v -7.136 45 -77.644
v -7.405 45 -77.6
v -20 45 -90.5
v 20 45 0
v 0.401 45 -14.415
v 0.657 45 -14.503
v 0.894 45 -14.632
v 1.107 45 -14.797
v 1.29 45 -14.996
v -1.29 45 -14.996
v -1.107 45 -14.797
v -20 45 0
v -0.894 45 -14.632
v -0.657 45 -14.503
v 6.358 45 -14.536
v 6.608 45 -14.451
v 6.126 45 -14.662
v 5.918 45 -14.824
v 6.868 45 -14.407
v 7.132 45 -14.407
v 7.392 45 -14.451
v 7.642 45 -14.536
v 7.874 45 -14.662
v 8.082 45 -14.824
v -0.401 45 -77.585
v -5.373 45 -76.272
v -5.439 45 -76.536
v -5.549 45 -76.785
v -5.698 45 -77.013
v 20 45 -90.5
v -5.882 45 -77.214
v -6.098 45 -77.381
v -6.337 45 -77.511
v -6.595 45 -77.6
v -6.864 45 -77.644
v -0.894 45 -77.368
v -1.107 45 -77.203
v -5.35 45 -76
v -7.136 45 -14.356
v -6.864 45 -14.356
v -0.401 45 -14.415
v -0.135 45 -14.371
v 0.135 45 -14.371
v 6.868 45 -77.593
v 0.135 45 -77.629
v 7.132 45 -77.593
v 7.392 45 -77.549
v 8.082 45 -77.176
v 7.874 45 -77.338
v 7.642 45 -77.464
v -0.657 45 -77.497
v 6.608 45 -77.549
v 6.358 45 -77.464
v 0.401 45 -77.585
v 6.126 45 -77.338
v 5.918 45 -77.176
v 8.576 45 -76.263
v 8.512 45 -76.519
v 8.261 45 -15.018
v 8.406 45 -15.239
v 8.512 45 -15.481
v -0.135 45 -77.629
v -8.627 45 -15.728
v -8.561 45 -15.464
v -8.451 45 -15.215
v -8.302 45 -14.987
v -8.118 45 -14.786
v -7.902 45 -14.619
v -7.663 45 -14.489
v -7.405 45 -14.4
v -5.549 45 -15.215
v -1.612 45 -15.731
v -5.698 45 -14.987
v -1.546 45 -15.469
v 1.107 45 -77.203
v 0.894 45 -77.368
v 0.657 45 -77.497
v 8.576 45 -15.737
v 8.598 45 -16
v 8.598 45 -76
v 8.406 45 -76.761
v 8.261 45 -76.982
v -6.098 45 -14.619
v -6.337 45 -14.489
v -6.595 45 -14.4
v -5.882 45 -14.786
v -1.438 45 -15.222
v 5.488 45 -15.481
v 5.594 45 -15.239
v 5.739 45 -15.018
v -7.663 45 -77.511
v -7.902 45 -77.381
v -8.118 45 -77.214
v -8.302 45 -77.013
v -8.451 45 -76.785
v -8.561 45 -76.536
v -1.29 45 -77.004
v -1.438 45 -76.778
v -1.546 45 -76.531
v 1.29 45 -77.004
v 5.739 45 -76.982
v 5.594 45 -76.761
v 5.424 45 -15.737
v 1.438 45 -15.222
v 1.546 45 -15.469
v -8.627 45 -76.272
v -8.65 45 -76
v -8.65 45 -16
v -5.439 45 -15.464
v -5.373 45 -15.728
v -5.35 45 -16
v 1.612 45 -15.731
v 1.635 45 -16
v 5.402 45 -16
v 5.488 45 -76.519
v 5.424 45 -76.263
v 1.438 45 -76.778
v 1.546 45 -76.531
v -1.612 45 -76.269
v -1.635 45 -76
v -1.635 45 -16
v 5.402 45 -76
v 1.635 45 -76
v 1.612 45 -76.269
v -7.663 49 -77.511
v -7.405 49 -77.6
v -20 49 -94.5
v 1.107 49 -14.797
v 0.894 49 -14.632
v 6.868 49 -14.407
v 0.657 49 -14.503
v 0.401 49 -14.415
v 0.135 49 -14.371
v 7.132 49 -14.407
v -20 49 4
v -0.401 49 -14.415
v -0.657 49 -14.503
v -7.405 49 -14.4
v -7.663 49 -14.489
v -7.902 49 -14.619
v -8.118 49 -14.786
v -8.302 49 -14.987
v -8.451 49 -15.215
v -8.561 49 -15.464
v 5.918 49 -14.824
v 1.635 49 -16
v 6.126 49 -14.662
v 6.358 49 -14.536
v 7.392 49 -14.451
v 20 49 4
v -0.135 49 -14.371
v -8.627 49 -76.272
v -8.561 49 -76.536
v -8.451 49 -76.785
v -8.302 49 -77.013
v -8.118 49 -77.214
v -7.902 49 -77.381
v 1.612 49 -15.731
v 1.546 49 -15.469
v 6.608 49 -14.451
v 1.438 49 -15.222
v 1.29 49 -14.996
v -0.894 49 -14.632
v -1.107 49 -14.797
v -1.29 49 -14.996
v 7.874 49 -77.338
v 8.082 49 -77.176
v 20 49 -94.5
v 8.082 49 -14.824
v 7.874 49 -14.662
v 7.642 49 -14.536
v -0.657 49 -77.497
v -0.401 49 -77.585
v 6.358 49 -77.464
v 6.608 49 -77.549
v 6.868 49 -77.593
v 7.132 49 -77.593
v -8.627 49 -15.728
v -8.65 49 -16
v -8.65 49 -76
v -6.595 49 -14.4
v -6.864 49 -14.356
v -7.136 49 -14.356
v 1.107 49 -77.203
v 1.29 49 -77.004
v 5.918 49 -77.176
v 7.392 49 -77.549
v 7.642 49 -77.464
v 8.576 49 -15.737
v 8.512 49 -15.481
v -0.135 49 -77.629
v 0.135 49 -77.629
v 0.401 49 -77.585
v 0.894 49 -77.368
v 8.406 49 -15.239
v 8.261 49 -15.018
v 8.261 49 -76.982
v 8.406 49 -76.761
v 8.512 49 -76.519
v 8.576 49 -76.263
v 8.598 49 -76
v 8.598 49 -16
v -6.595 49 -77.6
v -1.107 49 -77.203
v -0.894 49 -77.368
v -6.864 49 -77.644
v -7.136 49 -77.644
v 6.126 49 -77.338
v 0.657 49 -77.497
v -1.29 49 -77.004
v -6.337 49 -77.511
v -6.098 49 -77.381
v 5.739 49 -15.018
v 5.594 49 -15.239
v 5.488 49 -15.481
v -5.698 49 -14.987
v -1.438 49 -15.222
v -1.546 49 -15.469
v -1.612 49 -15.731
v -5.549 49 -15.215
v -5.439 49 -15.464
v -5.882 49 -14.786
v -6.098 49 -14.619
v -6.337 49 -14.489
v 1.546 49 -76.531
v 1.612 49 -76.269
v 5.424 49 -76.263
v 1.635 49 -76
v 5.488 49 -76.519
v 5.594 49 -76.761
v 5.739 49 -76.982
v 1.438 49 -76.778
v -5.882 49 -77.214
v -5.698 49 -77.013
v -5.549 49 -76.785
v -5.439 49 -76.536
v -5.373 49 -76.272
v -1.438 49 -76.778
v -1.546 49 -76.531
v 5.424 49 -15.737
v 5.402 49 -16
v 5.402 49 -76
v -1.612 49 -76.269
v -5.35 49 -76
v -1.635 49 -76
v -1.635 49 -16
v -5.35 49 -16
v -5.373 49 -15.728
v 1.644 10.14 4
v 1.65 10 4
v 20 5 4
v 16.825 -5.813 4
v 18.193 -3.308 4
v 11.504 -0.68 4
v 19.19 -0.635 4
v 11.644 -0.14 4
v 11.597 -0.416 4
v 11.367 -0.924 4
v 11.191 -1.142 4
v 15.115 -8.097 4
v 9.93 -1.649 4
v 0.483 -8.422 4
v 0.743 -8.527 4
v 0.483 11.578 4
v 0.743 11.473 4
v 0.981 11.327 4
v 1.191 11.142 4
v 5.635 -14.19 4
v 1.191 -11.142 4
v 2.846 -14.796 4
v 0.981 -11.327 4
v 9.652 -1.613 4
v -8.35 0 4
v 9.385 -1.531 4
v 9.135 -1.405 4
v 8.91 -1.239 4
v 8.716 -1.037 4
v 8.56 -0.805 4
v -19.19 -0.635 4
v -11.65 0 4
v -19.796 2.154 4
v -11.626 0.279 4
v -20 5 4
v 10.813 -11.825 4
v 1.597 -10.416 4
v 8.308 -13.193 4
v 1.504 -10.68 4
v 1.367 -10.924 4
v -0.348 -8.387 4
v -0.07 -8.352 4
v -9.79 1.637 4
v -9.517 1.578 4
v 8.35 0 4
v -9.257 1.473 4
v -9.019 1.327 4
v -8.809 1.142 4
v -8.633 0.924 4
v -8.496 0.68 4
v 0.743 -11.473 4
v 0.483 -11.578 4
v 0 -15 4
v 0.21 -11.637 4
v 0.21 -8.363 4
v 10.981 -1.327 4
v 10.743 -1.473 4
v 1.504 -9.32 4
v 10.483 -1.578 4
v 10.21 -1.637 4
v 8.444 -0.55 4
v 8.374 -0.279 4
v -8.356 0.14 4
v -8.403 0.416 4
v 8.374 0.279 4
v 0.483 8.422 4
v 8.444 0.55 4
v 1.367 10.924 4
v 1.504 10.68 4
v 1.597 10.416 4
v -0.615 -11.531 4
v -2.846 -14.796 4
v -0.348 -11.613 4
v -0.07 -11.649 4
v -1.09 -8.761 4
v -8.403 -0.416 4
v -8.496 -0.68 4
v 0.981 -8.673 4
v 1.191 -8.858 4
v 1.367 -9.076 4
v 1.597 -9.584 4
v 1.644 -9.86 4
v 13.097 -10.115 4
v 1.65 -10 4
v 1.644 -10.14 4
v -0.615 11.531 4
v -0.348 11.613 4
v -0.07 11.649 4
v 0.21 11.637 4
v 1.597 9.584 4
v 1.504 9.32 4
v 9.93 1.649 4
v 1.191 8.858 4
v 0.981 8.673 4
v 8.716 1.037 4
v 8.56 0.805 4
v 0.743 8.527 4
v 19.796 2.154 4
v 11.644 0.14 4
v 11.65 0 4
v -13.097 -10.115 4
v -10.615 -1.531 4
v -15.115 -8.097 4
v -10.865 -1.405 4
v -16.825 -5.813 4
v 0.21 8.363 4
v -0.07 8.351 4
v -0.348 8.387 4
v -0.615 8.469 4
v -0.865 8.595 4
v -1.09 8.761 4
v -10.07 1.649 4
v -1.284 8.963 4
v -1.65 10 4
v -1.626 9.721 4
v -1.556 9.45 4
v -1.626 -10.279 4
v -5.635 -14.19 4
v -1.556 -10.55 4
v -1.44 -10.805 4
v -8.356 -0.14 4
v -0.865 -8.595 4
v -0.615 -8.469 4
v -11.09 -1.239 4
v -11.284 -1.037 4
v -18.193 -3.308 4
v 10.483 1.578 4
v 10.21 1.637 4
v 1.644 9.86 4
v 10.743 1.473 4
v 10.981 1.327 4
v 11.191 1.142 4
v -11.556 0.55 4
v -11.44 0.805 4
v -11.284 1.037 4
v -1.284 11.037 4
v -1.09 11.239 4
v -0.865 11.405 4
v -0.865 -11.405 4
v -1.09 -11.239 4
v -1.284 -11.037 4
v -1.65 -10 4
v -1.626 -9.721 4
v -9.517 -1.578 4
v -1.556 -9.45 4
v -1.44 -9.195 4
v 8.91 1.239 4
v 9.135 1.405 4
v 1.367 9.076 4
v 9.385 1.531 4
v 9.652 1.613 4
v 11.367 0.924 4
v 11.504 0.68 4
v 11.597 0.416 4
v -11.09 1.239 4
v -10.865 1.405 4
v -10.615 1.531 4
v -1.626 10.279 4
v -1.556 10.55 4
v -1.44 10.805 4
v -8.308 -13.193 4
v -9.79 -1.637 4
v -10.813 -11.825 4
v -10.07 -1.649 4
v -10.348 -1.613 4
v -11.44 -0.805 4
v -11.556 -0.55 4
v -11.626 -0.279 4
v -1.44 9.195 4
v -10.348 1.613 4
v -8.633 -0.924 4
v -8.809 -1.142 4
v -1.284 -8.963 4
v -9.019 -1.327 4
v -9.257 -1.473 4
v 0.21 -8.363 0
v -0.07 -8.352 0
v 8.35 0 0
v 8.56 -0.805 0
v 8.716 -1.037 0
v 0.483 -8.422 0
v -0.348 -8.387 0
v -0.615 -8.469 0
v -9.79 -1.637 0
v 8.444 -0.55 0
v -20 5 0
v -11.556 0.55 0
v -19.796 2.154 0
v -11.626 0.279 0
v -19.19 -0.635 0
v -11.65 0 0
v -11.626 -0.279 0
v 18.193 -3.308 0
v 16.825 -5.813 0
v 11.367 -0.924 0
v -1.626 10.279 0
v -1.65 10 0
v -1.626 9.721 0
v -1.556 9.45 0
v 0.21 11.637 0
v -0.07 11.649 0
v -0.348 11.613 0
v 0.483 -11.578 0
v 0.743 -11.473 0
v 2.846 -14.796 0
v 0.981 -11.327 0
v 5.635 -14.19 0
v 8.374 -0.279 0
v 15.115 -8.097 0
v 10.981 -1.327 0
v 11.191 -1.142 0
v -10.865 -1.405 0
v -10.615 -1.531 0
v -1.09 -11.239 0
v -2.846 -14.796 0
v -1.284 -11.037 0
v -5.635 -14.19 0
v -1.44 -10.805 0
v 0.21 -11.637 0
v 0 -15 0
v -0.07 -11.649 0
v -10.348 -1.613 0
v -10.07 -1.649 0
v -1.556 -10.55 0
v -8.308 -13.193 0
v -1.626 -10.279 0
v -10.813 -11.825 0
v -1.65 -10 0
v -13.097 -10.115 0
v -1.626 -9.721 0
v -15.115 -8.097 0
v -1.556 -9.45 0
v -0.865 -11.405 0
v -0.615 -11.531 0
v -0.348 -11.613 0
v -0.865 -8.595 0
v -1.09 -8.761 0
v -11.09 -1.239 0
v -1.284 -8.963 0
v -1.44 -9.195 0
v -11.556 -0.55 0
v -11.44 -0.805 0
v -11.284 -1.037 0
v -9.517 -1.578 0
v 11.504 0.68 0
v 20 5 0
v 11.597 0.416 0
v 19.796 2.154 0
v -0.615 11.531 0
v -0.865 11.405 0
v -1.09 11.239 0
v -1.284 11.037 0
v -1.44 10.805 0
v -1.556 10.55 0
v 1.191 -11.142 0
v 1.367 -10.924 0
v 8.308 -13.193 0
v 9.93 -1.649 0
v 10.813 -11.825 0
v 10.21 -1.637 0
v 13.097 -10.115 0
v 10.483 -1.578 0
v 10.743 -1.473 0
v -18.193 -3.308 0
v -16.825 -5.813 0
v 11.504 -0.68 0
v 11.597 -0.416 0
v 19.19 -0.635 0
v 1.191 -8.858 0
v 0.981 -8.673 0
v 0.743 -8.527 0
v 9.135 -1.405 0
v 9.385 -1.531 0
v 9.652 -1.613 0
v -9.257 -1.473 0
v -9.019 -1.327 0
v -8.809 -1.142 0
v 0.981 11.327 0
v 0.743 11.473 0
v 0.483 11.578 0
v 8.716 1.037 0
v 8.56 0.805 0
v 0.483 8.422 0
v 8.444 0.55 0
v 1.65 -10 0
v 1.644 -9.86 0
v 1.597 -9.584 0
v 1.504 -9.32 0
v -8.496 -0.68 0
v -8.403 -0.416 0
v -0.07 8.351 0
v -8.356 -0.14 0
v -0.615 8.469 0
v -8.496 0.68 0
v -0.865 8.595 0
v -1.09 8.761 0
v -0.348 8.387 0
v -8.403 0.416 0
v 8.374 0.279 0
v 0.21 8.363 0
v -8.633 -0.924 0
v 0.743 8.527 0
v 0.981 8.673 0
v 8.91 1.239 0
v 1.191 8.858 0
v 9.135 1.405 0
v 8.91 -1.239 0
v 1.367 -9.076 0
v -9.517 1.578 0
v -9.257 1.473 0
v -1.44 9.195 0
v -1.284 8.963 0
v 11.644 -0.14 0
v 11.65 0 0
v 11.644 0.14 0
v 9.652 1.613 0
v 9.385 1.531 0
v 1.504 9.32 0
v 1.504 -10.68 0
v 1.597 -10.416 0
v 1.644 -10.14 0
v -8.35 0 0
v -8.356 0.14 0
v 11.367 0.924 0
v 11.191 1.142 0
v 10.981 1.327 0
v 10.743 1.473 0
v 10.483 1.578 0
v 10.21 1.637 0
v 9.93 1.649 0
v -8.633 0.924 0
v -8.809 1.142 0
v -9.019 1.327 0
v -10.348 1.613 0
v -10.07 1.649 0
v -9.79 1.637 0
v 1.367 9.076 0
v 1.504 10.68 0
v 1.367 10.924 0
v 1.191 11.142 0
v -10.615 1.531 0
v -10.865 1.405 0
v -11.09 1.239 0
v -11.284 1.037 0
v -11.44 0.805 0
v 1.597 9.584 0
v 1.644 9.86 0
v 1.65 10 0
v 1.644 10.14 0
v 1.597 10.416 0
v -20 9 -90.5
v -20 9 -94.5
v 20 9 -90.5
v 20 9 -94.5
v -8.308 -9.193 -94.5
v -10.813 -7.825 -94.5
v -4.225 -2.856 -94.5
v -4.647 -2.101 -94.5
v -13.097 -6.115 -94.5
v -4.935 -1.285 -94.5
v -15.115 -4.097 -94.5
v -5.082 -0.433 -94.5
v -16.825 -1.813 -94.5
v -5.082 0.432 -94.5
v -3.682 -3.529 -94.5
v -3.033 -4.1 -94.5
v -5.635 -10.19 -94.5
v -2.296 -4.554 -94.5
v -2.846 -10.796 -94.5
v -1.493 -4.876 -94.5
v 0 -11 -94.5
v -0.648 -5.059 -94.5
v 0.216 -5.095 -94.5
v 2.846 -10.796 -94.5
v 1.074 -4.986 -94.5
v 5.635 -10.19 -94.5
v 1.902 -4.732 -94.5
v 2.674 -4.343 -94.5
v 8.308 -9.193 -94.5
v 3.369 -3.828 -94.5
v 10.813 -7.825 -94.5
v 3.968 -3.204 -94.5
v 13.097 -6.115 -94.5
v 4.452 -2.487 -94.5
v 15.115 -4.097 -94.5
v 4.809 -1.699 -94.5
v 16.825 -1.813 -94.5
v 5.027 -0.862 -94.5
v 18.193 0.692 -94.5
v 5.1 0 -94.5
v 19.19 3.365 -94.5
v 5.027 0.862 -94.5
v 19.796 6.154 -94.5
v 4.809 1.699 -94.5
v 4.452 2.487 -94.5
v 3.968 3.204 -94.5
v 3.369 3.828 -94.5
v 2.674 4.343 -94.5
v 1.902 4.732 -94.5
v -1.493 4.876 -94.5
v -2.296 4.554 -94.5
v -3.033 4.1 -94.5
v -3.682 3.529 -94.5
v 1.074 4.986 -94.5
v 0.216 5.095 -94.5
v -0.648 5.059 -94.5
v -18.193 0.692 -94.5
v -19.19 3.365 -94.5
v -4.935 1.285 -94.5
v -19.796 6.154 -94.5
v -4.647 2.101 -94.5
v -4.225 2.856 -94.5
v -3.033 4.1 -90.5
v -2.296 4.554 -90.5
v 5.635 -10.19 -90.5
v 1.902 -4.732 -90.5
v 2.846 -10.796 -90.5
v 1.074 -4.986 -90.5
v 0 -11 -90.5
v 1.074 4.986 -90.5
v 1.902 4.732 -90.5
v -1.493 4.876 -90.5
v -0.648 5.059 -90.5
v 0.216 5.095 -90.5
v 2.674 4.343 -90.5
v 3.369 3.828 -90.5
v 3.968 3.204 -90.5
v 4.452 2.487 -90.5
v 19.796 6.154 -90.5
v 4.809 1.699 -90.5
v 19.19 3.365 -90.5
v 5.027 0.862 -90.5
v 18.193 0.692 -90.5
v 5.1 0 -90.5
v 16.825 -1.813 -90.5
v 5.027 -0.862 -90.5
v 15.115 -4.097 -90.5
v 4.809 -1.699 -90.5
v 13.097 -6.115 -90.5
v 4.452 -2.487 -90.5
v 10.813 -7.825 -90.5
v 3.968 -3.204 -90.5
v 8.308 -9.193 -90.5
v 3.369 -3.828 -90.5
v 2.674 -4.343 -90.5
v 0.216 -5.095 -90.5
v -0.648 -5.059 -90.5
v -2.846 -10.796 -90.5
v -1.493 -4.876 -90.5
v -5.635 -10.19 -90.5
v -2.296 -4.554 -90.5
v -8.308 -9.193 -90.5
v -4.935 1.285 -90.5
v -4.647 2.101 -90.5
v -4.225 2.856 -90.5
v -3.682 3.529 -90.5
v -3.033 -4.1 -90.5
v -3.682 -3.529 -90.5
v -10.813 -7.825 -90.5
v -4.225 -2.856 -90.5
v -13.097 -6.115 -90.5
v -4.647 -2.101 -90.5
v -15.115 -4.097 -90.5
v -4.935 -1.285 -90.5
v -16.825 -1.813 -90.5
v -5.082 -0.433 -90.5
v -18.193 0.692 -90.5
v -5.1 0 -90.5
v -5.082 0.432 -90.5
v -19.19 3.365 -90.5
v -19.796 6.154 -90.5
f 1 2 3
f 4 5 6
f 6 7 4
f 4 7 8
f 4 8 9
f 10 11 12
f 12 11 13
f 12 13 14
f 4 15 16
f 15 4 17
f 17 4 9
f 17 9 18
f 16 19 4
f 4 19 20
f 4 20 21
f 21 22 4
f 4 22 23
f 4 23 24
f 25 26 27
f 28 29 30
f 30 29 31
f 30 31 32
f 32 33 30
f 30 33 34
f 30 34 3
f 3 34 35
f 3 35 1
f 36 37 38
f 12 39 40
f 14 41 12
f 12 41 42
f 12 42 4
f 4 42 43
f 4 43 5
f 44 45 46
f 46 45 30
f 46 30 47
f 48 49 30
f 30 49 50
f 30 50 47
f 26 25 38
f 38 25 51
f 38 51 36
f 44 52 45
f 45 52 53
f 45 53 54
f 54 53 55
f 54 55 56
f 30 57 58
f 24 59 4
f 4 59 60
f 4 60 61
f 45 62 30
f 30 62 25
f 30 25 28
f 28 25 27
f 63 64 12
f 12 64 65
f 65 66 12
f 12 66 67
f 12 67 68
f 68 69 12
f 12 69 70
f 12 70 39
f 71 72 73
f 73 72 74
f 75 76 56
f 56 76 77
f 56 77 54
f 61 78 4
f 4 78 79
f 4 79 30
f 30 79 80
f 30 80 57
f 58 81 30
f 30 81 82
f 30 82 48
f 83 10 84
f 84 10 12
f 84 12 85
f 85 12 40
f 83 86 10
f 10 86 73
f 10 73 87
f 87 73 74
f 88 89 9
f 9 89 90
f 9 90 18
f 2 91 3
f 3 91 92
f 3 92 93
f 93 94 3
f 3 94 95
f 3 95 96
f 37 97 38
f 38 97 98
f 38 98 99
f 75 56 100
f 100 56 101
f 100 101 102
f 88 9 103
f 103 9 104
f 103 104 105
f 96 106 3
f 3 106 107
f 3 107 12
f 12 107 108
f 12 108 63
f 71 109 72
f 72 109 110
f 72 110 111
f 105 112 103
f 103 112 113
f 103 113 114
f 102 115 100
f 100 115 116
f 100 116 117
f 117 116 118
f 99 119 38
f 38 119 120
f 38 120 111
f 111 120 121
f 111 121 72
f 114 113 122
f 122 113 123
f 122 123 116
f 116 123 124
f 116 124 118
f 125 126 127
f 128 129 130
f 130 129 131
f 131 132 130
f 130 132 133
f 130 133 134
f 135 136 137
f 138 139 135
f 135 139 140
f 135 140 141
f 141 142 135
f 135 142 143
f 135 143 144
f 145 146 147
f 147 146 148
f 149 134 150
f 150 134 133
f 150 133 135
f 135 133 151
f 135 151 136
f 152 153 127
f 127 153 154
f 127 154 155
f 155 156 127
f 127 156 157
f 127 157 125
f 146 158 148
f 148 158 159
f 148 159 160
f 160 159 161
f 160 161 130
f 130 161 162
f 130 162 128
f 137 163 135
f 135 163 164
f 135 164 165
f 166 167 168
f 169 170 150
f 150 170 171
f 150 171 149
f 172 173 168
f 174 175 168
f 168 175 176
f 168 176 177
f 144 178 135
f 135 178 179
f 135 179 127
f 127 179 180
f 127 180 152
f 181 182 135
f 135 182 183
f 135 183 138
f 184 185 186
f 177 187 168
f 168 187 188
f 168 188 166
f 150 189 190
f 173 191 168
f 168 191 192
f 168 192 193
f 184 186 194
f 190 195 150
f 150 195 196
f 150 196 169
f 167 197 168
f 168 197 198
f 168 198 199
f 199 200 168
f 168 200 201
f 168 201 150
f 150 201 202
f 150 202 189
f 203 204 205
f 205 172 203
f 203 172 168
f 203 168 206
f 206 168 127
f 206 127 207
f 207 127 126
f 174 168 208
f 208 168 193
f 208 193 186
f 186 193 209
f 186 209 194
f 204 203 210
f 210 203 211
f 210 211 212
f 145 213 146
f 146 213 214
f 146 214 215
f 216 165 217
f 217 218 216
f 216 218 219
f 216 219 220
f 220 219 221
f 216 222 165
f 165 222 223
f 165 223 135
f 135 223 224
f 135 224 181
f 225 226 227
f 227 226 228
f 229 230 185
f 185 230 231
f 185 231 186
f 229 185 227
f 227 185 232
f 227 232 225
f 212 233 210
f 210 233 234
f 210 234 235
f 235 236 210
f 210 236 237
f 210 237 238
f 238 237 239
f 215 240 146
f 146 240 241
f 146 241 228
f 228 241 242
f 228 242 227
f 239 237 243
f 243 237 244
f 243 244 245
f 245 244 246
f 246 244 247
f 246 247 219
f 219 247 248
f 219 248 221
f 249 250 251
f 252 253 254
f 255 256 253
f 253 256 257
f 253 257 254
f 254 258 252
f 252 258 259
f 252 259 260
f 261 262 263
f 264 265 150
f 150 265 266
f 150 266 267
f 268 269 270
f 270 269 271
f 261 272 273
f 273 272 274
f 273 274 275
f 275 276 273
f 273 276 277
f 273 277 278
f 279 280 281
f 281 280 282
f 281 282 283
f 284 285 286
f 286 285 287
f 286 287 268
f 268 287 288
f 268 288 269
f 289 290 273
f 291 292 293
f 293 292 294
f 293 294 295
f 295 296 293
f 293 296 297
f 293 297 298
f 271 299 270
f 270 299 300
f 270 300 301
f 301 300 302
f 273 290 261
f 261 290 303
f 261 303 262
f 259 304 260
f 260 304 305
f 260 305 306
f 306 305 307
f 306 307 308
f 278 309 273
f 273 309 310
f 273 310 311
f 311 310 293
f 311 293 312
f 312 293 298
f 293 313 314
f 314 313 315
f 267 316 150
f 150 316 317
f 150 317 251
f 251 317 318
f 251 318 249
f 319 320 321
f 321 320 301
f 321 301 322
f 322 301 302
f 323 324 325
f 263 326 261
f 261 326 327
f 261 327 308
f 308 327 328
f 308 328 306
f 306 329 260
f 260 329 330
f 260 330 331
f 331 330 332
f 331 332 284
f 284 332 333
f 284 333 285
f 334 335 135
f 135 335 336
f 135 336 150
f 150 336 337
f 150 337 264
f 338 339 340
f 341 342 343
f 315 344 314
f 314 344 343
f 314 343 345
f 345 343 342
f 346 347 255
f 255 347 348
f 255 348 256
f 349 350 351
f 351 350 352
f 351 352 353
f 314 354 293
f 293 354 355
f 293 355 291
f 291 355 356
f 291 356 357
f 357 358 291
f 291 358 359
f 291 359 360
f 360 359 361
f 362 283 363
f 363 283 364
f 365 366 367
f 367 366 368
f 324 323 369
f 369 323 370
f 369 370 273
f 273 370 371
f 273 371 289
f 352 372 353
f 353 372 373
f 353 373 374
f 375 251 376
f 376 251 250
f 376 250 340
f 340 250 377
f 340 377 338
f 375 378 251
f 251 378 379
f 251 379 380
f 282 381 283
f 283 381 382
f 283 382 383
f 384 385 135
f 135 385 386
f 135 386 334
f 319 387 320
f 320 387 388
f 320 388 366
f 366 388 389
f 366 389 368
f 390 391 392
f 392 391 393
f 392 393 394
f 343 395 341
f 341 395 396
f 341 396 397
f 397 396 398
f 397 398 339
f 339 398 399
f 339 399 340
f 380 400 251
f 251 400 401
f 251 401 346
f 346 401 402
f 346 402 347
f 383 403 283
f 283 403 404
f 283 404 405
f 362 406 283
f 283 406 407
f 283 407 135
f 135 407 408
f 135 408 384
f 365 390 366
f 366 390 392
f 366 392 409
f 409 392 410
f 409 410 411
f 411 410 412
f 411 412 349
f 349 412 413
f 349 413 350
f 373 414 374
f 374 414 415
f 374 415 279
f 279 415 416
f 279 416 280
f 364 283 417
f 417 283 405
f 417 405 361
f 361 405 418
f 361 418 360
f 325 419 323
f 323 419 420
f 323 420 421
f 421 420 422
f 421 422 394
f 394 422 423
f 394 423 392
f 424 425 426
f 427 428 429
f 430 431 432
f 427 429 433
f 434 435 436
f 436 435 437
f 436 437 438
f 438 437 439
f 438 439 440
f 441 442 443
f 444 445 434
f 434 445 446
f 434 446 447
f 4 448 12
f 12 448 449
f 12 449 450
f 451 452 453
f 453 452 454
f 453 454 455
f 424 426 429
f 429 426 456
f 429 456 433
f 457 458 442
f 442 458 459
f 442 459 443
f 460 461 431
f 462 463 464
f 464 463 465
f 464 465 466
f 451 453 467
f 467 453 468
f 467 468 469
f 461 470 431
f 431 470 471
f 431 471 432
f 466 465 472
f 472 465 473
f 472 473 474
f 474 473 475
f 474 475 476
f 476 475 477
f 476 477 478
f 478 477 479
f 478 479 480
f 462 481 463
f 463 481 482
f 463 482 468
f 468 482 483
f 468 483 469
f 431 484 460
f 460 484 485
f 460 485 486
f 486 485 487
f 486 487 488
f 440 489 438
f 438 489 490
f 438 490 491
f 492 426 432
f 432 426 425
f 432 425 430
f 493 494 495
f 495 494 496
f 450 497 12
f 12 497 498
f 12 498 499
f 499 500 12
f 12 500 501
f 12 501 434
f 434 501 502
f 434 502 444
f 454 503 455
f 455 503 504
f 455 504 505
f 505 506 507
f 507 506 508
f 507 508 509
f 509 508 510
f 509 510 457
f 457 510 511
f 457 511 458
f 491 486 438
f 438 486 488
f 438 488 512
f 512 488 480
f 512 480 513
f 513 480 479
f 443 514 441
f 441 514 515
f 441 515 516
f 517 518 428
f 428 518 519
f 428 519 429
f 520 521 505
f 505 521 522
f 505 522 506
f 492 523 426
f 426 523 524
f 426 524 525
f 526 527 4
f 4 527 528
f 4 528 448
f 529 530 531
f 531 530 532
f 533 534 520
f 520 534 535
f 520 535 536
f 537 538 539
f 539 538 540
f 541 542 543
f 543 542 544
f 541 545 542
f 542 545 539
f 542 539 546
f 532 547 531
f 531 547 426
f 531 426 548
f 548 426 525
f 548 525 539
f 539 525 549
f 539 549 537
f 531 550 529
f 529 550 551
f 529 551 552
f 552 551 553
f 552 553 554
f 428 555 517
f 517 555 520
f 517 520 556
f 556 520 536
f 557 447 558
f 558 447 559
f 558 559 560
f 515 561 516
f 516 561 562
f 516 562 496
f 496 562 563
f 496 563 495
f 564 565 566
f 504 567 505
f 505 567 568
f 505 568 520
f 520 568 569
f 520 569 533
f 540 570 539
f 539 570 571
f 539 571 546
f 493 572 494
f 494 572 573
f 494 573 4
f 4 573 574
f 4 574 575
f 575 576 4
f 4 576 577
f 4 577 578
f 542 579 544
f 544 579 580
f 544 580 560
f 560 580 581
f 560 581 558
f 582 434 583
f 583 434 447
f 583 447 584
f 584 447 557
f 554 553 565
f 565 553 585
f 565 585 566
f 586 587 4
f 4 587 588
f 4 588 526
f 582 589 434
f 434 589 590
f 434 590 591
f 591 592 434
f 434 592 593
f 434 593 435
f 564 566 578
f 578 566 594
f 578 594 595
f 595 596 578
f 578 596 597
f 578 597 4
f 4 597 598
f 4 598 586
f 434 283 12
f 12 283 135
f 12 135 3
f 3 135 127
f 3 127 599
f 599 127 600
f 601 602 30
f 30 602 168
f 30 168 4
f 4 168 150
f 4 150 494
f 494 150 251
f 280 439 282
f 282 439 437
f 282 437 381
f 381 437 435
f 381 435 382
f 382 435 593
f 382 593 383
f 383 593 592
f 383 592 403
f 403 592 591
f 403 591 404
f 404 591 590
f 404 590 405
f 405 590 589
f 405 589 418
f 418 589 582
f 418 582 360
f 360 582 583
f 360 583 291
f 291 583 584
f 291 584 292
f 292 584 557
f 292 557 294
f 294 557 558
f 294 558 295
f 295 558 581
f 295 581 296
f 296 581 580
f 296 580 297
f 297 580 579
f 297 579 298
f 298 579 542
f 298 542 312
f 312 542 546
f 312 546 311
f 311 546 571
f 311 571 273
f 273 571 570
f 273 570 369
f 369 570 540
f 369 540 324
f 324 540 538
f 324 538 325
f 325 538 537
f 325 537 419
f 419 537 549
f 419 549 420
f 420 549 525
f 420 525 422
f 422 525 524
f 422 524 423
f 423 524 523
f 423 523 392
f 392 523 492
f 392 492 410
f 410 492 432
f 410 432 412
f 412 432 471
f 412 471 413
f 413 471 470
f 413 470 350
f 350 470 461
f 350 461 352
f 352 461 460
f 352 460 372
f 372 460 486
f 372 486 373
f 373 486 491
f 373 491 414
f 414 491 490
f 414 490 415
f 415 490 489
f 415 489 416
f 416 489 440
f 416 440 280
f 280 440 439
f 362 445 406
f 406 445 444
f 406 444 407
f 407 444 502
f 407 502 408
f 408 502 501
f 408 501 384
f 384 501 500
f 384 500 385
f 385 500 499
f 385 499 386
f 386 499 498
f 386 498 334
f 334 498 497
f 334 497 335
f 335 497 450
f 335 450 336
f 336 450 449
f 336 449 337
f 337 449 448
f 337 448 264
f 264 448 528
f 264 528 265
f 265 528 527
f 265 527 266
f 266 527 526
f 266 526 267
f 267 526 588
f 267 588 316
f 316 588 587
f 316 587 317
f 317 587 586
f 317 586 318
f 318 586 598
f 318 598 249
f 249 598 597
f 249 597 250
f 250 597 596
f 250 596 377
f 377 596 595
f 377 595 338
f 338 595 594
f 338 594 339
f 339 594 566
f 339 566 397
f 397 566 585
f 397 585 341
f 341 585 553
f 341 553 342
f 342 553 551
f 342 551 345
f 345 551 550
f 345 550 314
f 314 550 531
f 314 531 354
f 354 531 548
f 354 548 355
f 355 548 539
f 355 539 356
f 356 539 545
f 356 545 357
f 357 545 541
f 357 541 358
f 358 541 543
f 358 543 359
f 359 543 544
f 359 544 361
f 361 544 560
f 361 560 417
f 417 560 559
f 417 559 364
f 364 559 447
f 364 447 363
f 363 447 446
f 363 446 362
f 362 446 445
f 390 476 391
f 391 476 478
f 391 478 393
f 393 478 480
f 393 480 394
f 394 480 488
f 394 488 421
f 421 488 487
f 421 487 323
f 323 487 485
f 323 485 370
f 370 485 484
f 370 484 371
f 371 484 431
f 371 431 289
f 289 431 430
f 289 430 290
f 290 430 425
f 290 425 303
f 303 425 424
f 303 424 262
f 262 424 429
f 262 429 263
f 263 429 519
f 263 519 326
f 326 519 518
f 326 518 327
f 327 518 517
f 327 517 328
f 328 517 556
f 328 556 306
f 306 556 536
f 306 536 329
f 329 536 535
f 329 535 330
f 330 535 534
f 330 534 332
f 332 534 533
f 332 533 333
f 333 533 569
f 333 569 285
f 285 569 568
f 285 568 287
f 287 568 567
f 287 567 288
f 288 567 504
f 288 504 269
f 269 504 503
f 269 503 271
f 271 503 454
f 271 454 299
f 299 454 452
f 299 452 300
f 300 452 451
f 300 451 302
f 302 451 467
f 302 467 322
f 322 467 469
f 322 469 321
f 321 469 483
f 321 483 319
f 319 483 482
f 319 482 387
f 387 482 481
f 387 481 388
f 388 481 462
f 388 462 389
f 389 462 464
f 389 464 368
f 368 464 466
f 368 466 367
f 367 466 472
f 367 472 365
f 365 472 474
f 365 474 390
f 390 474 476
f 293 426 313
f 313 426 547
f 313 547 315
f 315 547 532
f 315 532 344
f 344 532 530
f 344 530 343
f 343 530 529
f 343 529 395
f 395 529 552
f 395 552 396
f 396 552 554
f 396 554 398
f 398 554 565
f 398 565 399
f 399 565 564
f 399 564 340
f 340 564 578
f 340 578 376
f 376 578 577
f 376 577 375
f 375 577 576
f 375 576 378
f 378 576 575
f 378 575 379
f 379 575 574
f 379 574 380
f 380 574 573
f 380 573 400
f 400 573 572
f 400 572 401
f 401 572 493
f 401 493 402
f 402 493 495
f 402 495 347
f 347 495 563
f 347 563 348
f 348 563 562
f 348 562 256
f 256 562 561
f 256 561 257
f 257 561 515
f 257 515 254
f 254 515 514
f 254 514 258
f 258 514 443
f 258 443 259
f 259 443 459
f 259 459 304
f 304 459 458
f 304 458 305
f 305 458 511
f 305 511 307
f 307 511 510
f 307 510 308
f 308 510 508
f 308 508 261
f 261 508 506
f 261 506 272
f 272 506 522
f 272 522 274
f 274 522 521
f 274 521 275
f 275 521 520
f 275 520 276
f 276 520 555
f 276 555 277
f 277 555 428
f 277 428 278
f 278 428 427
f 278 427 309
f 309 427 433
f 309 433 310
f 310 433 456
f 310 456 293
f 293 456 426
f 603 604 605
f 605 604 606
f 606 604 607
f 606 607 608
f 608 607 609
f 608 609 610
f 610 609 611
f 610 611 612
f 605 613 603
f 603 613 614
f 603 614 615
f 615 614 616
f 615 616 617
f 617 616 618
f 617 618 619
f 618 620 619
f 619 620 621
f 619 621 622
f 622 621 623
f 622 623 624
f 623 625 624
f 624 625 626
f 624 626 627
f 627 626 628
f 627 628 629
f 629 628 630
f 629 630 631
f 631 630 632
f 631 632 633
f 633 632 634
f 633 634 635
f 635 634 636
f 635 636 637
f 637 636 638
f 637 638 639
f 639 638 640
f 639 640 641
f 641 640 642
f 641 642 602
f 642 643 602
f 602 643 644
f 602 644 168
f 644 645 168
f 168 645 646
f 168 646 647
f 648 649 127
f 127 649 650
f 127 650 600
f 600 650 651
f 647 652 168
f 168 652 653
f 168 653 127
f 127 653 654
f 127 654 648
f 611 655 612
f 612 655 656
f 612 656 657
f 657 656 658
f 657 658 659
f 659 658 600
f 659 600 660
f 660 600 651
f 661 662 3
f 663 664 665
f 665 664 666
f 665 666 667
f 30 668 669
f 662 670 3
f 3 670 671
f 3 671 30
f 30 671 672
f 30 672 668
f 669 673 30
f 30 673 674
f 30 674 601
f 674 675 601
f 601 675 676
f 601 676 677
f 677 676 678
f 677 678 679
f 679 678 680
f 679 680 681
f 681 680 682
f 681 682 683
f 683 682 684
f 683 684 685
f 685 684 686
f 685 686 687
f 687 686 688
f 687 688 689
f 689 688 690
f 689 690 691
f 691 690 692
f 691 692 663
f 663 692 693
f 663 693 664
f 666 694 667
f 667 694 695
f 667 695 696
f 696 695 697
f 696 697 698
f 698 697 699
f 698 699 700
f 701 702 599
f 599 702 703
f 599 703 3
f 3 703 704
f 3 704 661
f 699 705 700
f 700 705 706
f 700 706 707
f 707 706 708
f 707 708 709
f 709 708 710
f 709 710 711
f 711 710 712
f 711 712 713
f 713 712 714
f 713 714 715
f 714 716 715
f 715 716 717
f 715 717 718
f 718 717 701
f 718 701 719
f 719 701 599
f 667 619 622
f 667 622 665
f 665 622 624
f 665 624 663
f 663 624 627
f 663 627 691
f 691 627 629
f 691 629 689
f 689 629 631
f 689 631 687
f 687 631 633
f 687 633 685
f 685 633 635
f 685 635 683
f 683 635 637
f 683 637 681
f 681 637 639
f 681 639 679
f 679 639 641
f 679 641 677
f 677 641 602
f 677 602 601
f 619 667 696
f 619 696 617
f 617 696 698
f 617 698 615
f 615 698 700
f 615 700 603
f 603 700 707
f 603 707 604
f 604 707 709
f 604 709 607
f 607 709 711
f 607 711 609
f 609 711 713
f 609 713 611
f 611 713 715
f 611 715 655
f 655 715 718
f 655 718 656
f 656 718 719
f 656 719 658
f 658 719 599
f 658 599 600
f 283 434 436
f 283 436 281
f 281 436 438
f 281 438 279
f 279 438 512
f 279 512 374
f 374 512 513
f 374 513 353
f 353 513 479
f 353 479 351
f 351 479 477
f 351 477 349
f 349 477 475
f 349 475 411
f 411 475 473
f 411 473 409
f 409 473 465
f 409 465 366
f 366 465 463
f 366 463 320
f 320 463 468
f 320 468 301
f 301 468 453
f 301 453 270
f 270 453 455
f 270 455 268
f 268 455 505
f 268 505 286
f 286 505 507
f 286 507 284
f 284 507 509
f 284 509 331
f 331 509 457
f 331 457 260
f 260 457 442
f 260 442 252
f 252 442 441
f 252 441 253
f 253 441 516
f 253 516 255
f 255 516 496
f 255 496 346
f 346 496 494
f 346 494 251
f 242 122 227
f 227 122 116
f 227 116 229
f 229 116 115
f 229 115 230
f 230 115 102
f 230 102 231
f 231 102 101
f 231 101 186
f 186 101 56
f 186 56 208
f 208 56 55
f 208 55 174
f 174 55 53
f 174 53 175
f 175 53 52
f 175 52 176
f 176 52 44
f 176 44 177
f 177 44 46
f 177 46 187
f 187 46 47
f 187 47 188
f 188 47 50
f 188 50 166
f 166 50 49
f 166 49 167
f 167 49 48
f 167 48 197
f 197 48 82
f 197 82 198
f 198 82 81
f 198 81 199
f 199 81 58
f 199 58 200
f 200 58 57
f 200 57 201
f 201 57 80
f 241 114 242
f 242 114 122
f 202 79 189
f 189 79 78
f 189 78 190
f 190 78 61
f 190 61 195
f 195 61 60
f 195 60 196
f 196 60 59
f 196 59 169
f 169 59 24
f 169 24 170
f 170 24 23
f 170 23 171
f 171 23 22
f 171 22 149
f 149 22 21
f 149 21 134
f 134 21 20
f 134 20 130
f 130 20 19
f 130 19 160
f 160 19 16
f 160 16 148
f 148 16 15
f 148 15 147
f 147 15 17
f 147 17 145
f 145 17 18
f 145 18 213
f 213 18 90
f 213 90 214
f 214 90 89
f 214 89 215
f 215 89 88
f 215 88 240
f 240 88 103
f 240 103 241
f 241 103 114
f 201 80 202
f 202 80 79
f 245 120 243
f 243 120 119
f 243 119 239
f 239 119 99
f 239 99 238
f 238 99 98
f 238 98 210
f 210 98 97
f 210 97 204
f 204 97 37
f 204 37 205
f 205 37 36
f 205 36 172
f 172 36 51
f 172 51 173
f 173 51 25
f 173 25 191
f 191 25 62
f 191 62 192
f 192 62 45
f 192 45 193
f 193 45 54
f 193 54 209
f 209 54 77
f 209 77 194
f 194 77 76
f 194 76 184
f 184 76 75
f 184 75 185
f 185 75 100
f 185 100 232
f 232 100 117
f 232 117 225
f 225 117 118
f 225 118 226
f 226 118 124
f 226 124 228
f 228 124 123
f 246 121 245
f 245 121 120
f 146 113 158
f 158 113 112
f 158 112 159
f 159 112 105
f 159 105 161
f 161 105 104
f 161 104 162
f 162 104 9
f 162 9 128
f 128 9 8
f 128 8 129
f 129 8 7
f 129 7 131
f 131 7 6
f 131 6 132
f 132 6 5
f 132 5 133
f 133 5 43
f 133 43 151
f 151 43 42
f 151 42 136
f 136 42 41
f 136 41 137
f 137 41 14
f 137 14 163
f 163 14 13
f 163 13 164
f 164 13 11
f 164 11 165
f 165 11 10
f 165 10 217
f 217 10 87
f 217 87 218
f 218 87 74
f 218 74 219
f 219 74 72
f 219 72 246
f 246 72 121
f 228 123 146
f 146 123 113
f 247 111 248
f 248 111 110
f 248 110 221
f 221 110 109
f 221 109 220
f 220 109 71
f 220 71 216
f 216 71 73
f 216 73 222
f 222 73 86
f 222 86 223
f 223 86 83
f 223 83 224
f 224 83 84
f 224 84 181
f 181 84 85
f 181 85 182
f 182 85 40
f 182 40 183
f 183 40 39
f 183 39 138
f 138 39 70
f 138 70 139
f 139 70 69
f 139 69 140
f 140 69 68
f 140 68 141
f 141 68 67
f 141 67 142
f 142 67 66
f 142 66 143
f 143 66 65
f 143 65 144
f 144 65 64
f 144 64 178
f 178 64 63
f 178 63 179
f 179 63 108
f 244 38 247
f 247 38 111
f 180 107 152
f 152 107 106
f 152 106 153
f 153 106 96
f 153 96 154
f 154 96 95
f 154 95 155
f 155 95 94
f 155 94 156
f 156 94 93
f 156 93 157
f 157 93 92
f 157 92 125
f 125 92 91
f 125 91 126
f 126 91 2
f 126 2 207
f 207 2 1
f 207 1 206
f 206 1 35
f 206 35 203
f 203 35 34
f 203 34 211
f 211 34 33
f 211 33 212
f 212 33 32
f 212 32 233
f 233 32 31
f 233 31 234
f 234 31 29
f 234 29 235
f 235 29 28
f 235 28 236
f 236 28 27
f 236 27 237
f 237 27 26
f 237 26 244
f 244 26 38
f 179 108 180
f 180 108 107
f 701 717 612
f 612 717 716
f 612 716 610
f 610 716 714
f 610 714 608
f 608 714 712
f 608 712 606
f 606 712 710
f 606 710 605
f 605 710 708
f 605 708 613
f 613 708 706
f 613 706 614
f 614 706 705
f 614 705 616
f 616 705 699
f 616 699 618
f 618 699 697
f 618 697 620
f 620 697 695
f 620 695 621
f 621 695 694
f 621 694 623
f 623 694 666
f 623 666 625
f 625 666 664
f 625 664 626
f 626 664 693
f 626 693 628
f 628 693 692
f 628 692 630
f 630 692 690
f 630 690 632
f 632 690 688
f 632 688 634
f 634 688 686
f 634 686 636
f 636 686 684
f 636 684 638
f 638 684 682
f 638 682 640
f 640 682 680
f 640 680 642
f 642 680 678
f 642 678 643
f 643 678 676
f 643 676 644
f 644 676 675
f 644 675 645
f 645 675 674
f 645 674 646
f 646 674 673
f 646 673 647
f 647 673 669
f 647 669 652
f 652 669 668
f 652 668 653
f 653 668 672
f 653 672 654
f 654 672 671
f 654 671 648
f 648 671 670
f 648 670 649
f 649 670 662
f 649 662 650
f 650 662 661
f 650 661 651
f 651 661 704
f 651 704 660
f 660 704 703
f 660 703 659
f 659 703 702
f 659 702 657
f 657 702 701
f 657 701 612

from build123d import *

# Parameters (mm, degrees)
SKETCH_1_R          = 1.65
EXTRUDE_1_DEPTH     = 4
EXTRUDE_START       = 4
SKETCH_2_W          = 40
SKETCH_2_H          = 4
EXTRUDE_2_DEPTH     = 98.5
EXTRUDE_START_2     = 49
SKETCH_4_W          = 40
SKETCH_4_H          = 4
EXTRUDE_3_DEPTH     = 60
FILLET_1_R          = 20
CUT_EXTRUDE_2_DEPTH = 109.310895112
CUT_EXTRUDE_START   = -90.5
SKETCH_8_R          = 5.1
CUT_EXTRUDE_3_DEPTH = 10


with BuildPart() as part:
    # 草图1 → 凸台-拉伸1 (new body)
    with BuildSketch(Plane.XY):
        Polygon((-20, 0), (-20, -15), (20, -15), (20, 3.147792708), (20, 45), (-20, 45), align=None)
        with Locations((-10, 0)):
            Circle(SKETCH_1_R, mode=Mode.SUBTRACT)
        with Locations((0, 10)):
            Circle(SKETCH_1_R, mode=Mode.SUBTRACT)
        with Locations((0, -10)):
            Circle(SKETCH_1_R, mode=Mode.SUBTRACT)
        with Locations((10, 0)):
            Circle(SKETCH_1_R, mode=Mode.SUBTRACT)
    extrude(amount=EXTRUDE_1_DEPTH)

    # 草图2 → 凸台-拉伸2 (add)
    with BuildSketch(Plane.XY.offset(EXTRUDE_START)):
        with Locations((0, 47)):
            Rectangle(SKETCH_2_W, SKETCH_2_H)
    extrude(amount=-EXTRUDE_2_DEPTH)

    # 草图4 → 凸台-拉伸3 (add)
    with BuildSketch(Plane(origin=(0, 0, 0), x_dir=(1, 0, 0), z_dir=(0, 1, 0)).offset(EXTRUDE_START_2)):
        with Locations((0, 92.5)):
            Rectangle(SKETCH_4_W, SKETCH_4_H)
    extrude(amount=-EXTRUDE_3_DEPTH)

    # 圆角1
    fillet_1_edges = [part.edges().sort_by_distance(p)[0] for p in [
        (-20, -11, -92.5),
        (20, -11, -92.5),
        (20, -15, 2),
        (-20, -15, 2),
    ]]
    fillet(fillet_1_edges, radius=FILLET_1_R - 0.0001)  # a hair under: the kernel refuses the full size

    # 草图6 → 切除-拉伸2 (cut, through all)
    with BuildSketch(Plane(origin=(0, 0, 0), x_dir=(1, 0, 0), z_dir=(0, 1, 0))):
        with BuildLine():
            Line((-8.65, 16), (-8.65, 76))
            ThreePointArc((-8.65, 76), (-7, 77.65), (-5.35, 76))
            Line((-5.35, 76), (-5.35, 16))
            ThreePointArc((-5.35, 16), (-7, 14.35), (-8.65, 16))
        make_face()
        with BuildLine():
            Line((1.634526819, 76), (1.634526819, 16))
            ThreePointArc((1.634526819, 16), (0, 14.365473181), (-1.634526819, 16))
            Line((-1.634526819, 16), (-1.634526819, 76))
            ThreePointArc((-1.634526819, 76), (0, 77.634526819), (1.634526819, 76))
        make_face()
        with BuildLine():
            Line((8.598187679, 76), (8.598187679, 16))
            ThreePointArc((8.598187679, 16), (7, 14.401812321), (5.401812321, 16))
            Line((5.401812321, 16), (5.401812321, 76))
            ThreePointArc((5.401812321, 76), (7, 77.598187679), (8.598187679, 76))
        make_face()
    extrude(amount=CUT_EXTRUDE_2_DEPTH, mode=Mode.SUBTRACT)

    # 草图8 → 切除-拉伸3 (cut)
    with BuildSketch(Plane.XY.offset(CUT_EXTRUDE_START)):
        Circle(SKETCH_8_R)
    extrude(amount=-CUT_EXTRUDE_3_DEPTH, mode=Mode.SUBTRACT)


solid = part.part
